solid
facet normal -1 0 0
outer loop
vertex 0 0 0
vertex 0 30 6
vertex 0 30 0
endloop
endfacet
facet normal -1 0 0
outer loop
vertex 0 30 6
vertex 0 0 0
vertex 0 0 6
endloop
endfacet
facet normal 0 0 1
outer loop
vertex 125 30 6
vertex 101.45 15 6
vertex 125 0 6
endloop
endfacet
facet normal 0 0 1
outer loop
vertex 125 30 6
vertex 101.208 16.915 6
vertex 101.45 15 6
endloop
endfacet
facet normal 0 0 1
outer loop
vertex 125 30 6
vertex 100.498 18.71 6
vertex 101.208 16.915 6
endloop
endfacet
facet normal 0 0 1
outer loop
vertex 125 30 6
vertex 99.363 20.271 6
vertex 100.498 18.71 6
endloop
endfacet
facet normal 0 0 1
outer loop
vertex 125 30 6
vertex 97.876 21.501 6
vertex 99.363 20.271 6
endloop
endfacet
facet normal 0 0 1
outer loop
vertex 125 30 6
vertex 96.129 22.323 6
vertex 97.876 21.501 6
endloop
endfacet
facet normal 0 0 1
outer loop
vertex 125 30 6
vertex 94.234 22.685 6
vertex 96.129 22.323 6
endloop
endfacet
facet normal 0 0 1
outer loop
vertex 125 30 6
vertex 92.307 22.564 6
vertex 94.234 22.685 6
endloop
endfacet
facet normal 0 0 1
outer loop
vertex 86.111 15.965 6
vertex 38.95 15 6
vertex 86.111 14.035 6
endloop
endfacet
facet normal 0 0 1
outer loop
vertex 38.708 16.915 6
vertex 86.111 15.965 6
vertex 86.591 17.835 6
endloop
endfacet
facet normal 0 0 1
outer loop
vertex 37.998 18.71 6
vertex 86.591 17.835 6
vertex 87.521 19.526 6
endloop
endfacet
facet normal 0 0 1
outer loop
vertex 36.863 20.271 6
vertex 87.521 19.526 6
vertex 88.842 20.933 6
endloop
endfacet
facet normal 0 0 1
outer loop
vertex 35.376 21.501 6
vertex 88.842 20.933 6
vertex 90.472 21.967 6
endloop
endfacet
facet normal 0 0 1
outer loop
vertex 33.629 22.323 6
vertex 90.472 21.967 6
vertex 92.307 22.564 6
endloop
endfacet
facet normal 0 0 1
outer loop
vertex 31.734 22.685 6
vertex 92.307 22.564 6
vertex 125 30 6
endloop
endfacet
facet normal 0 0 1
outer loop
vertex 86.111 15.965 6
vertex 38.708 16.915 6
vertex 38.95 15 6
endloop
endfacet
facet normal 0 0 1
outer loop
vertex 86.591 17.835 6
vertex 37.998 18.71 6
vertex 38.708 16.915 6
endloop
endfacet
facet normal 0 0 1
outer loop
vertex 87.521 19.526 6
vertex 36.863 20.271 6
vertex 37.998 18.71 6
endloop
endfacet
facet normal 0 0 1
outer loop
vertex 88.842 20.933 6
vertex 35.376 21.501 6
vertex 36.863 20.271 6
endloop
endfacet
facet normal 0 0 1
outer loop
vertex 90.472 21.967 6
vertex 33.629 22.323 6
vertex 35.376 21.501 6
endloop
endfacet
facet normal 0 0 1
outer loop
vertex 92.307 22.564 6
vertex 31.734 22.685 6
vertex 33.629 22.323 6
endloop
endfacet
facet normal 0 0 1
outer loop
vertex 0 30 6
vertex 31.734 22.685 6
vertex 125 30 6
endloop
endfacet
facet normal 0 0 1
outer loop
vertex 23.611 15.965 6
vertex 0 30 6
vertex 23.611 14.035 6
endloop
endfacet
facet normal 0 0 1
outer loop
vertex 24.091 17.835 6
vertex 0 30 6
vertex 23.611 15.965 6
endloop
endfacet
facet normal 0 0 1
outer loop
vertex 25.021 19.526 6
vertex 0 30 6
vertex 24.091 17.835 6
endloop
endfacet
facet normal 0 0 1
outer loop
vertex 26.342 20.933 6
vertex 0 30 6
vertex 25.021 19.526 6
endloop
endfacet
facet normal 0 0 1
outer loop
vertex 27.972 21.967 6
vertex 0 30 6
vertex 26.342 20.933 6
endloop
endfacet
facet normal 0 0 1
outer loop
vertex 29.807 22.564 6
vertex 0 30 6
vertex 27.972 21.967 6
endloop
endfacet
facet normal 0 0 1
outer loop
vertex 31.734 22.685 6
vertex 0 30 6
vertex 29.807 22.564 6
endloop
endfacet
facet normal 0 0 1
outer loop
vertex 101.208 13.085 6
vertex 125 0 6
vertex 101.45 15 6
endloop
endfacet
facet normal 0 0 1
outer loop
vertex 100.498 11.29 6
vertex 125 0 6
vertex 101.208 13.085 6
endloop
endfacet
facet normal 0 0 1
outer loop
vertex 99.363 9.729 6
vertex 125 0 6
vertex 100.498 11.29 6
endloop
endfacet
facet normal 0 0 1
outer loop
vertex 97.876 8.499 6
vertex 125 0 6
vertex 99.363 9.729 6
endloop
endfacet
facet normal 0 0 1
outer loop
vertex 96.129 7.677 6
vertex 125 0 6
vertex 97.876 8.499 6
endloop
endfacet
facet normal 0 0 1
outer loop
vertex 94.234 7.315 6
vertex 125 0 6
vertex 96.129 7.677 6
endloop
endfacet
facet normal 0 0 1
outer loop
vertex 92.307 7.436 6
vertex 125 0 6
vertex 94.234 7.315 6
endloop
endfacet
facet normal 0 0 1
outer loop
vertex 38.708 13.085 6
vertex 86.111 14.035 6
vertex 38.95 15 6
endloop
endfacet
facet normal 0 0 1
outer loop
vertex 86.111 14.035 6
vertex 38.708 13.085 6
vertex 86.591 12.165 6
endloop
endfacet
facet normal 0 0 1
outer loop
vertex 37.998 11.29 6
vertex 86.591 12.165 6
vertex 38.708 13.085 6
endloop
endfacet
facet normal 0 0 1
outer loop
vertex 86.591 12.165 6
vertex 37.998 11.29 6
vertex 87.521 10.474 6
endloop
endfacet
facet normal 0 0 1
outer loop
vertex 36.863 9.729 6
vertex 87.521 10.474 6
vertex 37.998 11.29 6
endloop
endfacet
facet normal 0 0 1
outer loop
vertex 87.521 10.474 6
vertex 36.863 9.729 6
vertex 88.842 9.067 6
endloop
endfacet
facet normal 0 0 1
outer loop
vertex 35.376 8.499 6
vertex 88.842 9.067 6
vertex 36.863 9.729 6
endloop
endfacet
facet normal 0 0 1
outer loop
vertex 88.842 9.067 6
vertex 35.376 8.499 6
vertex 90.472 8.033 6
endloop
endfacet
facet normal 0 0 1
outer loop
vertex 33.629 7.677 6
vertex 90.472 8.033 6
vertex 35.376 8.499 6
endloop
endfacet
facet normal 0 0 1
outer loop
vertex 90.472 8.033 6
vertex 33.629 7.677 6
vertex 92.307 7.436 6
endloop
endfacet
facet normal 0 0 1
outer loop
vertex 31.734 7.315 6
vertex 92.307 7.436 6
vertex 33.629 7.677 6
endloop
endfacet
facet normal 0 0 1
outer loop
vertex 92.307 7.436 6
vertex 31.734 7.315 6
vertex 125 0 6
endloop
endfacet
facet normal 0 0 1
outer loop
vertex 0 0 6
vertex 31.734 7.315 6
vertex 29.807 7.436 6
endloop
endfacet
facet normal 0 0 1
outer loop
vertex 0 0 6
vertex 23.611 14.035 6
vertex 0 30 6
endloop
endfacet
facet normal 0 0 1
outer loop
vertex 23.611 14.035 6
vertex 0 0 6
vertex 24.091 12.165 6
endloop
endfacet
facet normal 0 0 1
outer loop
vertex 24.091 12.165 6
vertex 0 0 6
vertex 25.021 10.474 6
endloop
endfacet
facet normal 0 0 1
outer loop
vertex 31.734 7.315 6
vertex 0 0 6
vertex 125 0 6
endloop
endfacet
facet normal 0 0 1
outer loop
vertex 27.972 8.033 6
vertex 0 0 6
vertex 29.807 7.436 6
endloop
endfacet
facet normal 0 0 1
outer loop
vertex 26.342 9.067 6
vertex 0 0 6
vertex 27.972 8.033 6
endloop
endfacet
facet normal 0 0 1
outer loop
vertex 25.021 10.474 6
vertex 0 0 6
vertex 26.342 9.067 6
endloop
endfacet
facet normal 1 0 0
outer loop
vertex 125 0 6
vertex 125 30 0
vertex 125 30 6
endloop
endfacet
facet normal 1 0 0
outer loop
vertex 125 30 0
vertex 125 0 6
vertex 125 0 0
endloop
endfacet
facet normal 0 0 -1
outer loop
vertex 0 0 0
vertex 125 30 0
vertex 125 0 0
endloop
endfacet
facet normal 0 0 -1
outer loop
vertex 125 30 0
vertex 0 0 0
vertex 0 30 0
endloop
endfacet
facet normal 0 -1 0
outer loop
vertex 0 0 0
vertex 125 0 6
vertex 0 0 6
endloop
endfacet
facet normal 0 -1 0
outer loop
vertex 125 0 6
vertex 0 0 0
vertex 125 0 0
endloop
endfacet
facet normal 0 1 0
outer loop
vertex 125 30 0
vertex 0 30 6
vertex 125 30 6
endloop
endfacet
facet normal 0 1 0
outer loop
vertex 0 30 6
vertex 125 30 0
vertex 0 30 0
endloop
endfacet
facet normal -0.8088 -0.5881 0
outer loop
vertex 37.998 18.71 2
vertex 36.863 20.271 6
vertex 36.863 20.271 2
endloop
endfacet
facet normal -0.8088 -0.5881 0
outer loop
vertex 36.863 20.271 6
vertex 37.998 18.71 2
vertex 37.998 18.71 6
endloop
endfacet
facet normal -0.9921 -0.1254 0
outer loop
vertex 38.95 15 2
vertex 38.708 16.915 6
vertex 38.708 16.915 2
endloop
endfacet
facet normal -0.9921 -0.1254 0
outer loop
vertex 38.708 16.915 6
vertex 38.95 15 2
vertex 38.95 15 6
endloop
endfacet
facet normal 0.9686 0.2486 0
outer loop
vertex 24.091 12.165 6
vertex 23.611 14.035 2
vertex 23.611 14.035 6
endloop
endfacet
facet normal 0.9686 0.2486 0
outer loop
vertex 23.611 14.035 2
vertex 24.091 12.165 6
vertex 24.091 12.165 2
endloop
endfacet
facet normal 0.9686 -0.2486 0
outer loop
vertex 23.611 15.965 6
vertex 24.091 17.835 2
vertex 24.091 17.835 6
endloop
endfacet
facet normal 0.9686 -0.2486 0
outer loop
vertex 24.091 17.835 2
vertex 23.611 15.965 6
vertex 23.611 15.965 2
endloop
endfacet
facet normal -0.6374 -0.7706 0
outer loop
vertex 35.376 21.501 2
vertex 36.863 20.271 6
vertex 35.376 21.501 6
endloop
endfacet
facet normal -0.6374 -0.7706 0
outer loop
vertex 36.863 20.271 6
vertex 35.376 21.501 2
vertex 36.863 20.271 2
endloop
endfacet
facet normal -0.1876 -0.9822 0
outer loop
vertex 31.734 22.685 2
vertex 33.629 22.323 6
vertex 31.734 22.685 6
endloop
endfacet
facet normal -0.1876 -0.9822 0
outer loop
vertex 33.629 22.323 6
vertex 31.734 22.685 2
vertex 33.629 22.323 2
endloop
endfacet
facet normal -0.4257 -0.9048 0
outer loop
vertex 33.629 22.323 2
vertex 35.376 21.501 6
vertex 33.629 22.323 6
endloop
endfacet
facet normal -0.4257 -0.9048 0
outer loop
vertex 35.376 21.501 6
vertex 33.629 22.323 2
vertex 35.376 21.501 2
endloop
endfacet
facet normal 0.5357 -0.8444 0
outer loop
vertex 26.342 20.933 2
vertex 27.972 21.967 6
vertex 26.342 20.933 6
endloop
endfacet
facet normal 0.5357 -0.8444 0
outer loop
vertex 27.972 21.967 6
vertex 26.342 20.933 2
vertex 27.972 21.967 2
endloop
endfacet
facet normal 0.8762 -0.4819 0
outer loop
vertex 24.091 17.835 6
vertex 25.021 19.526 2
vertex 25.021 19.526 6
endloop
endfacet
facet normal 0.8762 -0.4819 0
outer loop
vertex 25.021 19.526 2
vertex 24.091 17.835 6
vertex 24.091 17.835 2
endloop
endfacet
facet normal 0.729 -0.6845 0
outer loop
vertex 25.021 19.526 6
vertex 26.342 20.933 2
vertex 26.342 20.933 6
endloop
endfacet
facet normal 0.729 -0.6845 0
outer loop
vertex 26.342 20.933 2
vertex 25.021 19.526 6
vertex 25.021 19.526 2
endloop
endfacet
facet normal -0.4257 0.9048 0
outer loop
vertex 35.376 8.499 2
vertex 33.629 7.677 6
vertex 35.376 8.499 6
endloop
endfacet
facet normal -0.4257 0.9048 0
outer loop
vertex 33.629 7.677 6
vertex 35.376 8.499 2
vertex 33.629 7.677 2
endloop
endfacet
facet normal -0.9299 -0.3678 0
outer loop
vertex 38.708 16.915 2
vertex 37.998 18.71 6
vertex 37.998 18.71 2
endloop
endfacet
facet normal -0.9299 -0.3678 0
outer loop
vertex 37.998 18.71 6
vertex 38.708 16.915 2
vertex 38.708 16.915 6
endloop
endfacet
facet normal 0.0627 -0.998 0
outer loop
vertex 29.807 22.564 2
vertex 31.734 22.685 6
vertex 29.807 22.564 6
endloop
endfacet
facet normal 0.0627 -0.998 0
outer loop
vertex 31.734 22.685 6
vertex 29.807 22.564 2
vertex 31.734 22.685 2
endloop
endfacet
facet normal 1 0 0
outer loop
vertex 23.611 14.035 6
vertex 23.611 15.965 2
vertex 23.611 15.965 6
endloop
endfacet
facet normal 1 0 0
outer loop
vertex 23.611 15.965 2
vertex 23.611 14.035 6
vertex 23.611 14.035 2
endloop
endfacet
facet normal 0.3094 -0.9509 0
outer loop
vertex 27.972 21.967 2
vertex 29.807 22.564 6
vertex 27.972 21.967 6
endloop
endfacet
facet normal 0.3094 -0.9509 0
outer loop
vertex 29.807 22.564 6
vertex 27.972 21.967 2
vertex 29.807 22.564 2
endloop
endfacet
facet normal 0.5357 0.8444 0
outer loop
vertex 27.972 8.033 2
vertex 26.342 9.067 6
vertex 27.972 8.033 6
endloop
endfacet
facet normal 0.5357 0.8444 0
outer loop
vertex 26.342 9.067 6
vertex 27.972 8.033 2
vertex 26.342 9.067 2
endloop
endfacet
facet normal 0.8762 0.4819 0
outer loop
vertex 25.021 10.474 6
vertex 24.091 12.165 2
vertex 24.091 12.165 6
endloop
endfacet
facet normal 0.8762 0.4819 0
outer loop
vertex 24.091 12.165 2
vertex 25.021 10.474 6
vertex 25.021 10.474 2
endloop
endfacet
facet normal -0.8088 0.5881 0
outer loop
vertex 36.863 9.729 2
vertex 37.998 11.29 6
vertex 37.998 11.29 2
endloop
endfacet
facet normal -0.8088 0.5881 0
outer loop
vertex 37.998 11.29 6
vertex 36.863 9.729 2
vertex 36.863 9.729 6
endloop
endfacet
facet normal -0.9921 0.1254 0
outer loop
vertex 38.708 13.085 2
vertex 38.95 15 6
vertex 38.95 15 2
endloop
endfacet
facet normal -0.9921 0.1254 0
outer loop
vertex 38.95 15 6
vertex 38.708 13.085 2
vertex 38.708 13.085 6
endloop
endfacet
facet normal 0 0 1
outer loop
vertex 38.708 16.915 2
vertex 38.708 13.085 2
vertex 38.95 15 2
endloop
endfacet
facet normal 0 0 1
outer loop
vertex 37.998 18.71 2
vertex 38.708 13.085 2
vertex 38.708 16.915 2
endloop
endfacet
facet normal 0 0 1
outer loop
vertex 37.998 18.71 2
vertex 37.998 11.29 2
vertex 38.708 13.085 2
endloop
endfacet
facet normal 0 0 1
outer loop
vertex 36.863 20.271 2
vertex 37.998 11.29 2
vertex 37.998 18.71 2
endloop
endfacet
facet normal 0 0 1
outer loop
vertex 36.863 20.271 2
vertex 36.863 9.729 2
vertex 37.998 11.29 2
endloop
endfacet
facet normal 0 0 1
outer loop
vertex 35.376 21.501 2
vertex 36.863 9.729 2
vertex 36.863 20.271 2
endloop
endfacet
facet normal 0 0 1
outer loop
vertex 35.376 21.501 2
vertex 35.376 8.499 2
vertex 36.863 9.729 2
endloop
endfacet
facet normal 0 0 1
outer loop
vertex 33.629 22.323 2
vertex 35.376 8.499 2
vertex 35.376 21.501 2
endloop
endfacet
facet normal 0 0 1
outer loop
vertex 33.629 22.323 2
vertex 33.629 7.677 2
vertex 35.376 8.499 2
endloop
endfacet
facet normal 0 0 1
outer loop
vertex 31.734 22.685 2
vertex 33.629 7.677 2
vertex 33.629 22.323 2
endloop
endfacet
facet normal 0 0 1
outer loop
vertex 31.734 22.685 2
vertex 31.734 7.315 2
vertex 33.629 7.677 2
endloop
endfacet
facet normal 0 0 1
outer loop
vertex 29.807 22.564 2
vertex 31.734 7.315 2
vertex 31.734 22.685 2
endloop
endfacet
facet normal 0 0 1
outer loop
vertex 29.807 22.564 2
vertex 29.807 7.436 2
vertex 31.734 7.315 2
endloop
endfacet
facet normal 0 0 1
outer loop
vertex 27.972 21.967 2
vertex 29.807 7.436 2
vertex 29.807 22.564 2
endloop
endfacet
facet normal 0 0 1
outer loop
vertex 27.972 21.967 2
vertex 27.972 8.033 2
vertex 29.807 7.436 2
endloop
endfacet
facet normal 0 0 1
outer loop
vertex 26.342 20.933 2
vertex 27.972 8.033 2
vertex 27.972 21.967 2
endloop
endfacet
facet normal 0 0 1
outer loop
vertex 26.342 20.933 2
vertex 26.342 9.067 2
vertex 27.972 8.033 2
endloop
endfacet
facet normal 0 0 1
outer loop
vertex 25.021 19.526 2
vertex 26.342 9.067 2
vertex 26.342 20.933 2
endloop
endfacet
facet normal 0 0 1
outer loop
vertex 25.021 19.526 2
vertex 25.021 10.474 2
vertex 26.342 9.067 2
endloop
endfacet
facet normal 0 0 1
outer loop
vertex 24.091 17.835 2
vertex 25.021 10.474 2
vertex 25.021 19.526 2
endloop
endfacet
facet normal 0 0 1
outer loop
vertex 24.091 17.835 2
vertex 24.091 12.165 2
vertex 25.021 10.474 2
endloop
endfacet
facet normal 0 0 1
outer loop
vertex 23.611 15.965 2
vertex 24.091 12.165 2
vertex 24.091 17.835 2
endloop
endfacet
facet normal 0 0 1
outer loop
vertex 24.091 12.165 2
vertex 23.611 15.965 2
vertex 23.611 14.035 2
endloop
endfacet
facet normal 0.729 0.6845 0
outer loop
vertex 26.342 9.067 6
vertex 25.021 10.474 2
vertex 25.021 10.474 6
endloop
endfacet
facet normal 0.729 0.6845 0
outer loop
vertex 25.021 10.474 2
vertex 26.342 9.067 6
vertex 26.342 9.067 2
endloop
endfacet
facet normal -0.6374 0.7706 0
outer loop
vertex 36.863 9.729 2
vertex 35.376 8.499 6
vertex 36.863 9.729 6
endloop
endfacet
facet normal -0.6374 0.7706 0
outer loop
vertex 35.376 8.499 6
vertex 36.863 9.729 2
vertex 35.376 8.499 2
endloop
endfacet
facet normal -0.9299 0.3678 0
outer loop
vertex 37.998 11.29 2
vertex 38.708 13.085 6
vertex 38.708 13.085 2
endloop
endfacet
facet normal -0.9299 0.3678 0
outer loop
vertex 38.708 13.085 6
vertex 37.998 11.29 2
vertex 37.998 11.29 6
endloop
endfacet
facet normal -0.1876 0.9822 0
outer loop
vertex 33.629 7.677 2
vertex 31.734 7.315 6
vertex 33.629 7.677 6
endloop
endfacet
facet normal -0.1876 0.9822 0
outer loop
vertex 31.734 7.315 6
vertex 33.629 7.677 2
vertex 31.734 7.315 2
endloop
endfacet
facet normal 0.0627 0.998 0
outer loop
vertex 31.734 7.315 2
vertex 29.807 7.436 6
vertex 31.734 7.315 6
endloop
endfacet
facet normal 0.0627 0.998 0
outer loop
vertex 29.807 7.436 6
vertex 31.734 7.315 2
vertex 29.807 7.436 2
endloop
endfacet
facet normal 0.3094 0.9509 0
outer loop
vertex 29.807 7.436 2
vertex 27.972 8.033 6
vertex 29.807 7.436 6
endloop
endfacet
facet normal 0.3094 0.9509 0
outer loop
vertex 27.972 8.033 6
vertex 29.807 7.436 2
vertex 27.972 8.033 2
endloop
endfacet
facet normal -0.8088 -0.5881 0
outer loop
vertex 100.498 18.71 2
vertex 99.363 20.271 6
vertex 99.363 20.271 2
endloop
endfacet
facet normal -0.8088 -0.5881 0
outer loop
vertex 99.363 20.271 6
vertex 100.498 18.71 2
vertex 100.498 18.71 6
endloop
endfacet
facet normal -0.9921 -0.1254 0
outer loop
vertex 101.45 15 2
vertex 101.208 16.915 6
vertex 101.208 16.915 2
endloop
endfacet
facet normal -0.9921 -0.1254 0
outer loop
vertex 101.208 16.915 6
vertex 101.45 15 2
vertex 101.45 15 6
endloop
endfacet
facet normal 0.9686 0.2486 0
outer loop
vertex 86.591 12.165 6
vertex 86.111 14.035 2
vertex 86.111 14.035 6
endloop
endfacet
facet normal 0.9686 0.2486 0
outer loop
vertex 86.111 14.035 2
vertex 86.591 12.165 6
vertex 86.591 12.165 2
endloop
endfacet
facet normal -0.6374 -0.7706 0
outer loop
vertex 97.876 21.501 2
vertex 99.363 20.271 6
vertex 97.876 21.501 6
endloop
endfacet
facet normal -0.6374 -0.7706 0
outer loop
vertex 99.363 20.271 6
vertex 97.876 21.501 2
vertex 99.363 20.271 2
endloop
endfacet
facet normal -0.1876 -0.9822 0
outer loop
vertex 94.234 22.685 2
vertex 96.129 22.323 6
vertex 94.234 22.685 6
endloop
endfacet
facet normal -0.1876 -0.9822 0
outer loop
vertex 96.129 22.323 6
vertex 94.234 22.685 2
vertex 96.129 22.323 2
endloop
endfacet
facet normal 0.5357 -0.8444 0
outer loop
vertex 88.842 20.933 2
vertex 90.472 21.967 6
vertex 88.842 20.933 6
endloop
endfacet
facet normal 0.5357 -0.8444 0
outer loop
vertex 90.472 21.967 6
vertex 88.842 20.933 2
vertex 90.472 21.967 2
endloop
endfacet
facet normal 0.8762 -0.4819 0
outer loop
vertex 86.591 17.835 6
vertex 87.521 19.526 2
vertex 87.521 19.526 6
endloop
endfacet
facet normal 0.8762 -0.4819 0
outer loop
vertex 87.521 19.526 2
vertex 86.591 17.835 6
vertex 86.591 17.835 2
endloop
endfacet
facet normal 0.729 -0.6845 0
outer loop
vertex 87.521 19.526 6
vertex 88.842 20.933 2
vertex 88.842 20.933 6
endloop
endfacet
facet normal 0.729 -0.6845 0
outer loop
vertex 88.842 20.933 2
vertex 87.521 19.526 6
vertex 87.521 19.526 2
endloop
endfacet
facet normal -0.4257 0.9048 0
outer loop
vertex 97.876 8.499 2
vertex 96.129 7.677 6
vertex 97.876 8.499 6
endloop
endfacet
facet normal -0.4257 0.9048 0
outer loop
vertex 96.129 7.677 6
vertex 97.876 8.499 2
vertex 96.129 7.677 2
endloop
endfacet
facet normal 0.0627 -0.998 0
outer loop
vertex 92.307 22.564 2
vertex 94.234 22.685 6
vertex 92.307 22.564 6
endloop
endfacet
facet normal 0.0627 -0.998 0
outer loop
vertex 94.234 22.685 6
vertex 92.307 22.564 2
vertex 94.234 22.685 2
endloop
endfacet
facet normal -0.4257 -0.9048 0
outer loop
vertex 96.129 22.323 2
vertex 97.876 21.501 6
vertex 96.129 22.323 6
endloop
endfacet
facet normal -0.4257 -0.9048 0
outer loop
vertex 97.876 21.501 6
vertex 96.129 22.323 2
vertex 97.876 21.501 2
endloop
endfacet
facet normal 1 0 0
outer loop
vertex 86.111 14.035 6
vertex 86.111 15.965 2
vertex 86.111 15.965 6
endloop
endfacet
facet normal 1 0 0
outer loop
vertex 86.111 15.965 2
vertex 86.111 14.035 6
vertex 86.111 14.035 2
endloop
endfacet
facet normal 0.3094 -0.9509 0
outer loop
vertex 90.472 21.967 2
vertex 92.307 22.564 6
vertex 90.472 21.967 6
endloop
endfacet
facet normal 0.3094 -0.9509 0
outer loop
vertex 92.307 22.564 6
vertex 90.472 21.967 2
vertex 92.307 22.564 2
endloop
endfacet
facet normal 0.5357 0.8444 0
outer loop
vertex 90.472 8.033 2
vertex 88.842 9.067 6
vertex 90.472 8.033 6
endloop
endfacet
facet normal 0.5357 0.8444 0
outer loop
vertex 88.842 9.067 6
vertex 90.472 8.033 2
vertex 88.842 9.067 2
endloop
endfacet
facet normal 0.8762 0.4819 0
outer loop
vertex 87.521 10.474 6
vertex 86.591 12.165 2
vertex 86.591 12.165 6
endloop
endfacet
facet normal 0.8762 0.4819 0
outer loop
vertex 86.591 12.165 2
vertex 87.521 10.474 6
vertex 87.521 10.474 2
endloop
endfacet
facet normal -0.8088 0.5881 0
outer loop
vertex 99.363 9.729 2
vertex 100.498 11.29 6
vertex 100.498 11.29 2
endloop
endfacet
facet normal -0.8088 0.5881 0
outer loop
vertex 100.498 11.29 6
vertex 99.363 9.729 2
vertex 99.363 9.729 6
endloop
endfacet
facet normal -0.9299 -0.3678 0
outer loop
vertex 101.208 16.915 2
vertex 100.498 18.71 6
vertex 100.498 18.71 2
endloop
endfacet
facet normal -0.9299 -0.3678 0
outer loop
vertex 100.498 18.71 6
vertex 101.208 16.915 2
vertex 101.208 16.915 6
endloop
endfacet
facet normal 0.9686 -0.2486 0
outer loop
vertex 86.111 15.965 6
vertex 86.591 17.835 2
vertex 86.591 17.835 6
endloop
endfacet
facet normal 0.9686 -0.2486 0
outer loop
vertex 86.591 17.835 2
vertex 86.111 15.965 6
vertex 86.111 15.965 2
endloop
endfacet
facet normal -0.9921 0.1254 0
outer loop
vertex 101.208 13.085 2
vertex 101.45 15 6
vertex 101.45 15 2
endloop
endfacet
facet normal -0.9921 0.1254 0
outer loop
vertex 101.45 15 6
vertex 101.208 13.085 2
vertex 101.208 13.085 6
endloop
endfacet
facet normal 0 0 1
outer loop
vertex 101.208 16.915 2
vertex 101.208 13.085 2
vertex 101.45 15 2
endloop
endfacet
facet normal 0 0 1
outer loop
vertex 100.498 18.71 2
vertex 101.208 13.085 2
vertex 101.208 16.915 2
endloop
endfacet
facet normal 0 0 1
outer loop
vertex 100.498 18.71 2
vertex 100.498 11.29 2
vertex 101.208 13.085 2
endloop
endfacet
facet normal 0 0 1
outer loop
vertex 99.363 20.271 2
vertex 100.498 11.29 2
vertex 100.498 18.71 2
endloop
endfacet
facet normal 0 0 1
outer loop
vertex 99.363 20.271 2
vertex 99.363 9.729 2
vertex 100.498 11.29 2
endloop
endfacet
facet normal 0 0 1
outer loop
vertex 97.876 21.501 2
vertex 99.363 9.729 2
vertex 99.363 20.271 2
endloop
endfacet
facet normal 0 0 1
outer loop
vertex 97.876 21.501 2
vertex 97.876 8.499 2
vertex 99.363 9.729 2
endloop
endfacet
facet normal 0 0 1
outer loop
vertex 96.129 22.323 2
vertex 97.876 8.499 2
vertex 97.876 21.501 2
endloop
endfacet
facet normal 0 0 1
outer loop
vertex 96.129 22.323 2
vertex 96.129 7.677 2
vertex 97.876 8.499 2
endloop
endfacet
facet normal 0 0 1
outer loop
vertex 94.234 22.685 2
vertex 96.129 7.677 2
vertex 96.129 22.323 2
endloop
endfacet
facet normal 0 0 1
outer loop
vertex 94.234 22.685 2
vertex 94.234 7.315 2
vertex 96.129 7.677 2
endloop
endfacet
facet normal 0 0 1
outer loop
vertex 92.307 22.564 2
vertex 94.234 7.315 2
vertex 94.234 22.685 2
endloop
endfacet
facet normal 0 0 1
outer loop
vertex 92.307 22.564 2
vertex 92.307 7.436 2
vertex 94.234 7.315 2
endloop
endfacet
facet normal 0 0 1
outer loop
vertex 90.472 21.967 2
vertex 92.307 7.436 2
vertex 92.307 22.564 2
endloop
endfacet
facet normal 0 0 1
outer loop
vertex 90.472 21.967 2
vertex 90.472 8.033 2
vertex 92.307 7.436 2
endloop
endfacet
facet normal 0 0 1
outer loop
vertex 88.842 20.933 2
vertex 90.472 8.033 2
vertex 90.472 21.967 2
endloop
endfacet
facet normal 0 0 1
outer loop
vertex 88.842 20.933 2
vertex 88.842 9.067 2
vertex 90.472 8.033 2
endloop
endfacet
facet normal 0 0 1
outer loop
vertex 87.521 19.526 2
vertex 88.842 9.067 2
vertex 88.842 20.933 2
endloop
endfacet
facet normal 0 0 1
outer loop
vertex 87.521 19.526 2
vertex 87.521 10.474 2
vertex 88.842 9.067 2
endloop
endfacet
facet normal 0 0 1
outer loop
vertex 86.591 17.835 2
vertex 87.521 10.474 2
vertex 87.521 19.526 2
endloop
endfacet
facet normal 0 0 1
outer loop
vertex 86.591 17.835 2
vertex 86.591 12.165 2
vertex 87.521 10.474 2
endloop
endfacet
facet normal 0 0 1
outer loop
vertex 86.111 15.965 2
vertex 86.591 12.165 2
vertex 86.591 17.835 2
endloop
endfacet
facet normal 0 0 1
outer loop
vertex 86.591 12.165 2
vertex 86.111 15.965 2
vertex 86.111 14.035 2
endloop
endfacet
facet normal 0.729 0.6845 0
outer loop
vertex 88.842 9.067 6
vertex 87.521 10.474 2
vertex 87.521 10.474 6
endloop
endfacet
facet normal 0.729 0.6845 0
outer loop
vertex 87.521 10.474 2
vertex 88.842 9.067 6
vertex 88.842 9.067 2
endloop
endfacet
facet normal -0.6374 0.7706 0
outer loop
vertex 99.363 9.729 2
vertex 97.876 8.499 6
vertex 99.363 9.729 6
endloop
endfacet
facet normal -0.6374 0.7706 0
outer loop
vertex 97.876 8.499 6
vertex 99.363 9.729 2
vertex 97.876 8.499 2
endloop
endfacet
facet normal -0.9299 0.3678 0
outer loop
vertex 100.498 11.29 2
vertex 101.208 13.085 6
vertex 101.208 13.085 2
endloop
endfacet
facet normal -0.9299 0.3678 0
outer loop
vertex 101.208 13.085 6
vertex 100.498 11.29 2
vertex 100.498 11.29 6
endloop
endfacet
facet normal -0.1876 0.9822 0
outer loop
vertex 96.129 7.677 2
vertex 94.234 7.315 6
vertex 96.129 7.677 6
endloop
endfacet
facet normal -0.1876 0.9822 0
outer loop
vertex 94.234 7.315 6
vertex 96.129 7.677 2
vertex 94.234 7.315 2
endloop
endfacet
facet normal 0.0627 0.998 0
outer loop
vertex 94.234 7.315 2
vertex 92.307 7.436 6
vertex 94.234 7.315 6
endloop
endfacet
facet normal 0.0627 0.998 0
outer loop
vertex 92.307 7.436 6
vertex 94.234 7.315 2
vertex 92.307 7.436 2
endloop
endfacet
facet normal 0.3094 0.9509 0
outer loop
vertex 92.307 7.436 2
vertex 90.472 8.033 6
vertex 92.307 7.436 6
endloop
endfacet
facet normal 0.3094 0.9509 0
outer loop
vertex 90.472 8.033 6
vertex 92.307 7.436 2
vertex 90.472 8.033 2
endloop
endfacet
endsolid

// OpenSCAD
magnetBaseInnerDiameter = 15.4;
magnetHeight = 4.0;
length = 125;
height = 6;
width = 30;

difference() {
    cube([length, width, height]);
    translate([length * .25, width/2, height - magnetHeight])
        cylinder(magnetHeight, d=magnetBaseInnerDiameter);
    translate([length * .75, width/2, height - magnetHeight])
        cylinder(magnetHeight, d=magnetBaseInnerDiameter);
}
